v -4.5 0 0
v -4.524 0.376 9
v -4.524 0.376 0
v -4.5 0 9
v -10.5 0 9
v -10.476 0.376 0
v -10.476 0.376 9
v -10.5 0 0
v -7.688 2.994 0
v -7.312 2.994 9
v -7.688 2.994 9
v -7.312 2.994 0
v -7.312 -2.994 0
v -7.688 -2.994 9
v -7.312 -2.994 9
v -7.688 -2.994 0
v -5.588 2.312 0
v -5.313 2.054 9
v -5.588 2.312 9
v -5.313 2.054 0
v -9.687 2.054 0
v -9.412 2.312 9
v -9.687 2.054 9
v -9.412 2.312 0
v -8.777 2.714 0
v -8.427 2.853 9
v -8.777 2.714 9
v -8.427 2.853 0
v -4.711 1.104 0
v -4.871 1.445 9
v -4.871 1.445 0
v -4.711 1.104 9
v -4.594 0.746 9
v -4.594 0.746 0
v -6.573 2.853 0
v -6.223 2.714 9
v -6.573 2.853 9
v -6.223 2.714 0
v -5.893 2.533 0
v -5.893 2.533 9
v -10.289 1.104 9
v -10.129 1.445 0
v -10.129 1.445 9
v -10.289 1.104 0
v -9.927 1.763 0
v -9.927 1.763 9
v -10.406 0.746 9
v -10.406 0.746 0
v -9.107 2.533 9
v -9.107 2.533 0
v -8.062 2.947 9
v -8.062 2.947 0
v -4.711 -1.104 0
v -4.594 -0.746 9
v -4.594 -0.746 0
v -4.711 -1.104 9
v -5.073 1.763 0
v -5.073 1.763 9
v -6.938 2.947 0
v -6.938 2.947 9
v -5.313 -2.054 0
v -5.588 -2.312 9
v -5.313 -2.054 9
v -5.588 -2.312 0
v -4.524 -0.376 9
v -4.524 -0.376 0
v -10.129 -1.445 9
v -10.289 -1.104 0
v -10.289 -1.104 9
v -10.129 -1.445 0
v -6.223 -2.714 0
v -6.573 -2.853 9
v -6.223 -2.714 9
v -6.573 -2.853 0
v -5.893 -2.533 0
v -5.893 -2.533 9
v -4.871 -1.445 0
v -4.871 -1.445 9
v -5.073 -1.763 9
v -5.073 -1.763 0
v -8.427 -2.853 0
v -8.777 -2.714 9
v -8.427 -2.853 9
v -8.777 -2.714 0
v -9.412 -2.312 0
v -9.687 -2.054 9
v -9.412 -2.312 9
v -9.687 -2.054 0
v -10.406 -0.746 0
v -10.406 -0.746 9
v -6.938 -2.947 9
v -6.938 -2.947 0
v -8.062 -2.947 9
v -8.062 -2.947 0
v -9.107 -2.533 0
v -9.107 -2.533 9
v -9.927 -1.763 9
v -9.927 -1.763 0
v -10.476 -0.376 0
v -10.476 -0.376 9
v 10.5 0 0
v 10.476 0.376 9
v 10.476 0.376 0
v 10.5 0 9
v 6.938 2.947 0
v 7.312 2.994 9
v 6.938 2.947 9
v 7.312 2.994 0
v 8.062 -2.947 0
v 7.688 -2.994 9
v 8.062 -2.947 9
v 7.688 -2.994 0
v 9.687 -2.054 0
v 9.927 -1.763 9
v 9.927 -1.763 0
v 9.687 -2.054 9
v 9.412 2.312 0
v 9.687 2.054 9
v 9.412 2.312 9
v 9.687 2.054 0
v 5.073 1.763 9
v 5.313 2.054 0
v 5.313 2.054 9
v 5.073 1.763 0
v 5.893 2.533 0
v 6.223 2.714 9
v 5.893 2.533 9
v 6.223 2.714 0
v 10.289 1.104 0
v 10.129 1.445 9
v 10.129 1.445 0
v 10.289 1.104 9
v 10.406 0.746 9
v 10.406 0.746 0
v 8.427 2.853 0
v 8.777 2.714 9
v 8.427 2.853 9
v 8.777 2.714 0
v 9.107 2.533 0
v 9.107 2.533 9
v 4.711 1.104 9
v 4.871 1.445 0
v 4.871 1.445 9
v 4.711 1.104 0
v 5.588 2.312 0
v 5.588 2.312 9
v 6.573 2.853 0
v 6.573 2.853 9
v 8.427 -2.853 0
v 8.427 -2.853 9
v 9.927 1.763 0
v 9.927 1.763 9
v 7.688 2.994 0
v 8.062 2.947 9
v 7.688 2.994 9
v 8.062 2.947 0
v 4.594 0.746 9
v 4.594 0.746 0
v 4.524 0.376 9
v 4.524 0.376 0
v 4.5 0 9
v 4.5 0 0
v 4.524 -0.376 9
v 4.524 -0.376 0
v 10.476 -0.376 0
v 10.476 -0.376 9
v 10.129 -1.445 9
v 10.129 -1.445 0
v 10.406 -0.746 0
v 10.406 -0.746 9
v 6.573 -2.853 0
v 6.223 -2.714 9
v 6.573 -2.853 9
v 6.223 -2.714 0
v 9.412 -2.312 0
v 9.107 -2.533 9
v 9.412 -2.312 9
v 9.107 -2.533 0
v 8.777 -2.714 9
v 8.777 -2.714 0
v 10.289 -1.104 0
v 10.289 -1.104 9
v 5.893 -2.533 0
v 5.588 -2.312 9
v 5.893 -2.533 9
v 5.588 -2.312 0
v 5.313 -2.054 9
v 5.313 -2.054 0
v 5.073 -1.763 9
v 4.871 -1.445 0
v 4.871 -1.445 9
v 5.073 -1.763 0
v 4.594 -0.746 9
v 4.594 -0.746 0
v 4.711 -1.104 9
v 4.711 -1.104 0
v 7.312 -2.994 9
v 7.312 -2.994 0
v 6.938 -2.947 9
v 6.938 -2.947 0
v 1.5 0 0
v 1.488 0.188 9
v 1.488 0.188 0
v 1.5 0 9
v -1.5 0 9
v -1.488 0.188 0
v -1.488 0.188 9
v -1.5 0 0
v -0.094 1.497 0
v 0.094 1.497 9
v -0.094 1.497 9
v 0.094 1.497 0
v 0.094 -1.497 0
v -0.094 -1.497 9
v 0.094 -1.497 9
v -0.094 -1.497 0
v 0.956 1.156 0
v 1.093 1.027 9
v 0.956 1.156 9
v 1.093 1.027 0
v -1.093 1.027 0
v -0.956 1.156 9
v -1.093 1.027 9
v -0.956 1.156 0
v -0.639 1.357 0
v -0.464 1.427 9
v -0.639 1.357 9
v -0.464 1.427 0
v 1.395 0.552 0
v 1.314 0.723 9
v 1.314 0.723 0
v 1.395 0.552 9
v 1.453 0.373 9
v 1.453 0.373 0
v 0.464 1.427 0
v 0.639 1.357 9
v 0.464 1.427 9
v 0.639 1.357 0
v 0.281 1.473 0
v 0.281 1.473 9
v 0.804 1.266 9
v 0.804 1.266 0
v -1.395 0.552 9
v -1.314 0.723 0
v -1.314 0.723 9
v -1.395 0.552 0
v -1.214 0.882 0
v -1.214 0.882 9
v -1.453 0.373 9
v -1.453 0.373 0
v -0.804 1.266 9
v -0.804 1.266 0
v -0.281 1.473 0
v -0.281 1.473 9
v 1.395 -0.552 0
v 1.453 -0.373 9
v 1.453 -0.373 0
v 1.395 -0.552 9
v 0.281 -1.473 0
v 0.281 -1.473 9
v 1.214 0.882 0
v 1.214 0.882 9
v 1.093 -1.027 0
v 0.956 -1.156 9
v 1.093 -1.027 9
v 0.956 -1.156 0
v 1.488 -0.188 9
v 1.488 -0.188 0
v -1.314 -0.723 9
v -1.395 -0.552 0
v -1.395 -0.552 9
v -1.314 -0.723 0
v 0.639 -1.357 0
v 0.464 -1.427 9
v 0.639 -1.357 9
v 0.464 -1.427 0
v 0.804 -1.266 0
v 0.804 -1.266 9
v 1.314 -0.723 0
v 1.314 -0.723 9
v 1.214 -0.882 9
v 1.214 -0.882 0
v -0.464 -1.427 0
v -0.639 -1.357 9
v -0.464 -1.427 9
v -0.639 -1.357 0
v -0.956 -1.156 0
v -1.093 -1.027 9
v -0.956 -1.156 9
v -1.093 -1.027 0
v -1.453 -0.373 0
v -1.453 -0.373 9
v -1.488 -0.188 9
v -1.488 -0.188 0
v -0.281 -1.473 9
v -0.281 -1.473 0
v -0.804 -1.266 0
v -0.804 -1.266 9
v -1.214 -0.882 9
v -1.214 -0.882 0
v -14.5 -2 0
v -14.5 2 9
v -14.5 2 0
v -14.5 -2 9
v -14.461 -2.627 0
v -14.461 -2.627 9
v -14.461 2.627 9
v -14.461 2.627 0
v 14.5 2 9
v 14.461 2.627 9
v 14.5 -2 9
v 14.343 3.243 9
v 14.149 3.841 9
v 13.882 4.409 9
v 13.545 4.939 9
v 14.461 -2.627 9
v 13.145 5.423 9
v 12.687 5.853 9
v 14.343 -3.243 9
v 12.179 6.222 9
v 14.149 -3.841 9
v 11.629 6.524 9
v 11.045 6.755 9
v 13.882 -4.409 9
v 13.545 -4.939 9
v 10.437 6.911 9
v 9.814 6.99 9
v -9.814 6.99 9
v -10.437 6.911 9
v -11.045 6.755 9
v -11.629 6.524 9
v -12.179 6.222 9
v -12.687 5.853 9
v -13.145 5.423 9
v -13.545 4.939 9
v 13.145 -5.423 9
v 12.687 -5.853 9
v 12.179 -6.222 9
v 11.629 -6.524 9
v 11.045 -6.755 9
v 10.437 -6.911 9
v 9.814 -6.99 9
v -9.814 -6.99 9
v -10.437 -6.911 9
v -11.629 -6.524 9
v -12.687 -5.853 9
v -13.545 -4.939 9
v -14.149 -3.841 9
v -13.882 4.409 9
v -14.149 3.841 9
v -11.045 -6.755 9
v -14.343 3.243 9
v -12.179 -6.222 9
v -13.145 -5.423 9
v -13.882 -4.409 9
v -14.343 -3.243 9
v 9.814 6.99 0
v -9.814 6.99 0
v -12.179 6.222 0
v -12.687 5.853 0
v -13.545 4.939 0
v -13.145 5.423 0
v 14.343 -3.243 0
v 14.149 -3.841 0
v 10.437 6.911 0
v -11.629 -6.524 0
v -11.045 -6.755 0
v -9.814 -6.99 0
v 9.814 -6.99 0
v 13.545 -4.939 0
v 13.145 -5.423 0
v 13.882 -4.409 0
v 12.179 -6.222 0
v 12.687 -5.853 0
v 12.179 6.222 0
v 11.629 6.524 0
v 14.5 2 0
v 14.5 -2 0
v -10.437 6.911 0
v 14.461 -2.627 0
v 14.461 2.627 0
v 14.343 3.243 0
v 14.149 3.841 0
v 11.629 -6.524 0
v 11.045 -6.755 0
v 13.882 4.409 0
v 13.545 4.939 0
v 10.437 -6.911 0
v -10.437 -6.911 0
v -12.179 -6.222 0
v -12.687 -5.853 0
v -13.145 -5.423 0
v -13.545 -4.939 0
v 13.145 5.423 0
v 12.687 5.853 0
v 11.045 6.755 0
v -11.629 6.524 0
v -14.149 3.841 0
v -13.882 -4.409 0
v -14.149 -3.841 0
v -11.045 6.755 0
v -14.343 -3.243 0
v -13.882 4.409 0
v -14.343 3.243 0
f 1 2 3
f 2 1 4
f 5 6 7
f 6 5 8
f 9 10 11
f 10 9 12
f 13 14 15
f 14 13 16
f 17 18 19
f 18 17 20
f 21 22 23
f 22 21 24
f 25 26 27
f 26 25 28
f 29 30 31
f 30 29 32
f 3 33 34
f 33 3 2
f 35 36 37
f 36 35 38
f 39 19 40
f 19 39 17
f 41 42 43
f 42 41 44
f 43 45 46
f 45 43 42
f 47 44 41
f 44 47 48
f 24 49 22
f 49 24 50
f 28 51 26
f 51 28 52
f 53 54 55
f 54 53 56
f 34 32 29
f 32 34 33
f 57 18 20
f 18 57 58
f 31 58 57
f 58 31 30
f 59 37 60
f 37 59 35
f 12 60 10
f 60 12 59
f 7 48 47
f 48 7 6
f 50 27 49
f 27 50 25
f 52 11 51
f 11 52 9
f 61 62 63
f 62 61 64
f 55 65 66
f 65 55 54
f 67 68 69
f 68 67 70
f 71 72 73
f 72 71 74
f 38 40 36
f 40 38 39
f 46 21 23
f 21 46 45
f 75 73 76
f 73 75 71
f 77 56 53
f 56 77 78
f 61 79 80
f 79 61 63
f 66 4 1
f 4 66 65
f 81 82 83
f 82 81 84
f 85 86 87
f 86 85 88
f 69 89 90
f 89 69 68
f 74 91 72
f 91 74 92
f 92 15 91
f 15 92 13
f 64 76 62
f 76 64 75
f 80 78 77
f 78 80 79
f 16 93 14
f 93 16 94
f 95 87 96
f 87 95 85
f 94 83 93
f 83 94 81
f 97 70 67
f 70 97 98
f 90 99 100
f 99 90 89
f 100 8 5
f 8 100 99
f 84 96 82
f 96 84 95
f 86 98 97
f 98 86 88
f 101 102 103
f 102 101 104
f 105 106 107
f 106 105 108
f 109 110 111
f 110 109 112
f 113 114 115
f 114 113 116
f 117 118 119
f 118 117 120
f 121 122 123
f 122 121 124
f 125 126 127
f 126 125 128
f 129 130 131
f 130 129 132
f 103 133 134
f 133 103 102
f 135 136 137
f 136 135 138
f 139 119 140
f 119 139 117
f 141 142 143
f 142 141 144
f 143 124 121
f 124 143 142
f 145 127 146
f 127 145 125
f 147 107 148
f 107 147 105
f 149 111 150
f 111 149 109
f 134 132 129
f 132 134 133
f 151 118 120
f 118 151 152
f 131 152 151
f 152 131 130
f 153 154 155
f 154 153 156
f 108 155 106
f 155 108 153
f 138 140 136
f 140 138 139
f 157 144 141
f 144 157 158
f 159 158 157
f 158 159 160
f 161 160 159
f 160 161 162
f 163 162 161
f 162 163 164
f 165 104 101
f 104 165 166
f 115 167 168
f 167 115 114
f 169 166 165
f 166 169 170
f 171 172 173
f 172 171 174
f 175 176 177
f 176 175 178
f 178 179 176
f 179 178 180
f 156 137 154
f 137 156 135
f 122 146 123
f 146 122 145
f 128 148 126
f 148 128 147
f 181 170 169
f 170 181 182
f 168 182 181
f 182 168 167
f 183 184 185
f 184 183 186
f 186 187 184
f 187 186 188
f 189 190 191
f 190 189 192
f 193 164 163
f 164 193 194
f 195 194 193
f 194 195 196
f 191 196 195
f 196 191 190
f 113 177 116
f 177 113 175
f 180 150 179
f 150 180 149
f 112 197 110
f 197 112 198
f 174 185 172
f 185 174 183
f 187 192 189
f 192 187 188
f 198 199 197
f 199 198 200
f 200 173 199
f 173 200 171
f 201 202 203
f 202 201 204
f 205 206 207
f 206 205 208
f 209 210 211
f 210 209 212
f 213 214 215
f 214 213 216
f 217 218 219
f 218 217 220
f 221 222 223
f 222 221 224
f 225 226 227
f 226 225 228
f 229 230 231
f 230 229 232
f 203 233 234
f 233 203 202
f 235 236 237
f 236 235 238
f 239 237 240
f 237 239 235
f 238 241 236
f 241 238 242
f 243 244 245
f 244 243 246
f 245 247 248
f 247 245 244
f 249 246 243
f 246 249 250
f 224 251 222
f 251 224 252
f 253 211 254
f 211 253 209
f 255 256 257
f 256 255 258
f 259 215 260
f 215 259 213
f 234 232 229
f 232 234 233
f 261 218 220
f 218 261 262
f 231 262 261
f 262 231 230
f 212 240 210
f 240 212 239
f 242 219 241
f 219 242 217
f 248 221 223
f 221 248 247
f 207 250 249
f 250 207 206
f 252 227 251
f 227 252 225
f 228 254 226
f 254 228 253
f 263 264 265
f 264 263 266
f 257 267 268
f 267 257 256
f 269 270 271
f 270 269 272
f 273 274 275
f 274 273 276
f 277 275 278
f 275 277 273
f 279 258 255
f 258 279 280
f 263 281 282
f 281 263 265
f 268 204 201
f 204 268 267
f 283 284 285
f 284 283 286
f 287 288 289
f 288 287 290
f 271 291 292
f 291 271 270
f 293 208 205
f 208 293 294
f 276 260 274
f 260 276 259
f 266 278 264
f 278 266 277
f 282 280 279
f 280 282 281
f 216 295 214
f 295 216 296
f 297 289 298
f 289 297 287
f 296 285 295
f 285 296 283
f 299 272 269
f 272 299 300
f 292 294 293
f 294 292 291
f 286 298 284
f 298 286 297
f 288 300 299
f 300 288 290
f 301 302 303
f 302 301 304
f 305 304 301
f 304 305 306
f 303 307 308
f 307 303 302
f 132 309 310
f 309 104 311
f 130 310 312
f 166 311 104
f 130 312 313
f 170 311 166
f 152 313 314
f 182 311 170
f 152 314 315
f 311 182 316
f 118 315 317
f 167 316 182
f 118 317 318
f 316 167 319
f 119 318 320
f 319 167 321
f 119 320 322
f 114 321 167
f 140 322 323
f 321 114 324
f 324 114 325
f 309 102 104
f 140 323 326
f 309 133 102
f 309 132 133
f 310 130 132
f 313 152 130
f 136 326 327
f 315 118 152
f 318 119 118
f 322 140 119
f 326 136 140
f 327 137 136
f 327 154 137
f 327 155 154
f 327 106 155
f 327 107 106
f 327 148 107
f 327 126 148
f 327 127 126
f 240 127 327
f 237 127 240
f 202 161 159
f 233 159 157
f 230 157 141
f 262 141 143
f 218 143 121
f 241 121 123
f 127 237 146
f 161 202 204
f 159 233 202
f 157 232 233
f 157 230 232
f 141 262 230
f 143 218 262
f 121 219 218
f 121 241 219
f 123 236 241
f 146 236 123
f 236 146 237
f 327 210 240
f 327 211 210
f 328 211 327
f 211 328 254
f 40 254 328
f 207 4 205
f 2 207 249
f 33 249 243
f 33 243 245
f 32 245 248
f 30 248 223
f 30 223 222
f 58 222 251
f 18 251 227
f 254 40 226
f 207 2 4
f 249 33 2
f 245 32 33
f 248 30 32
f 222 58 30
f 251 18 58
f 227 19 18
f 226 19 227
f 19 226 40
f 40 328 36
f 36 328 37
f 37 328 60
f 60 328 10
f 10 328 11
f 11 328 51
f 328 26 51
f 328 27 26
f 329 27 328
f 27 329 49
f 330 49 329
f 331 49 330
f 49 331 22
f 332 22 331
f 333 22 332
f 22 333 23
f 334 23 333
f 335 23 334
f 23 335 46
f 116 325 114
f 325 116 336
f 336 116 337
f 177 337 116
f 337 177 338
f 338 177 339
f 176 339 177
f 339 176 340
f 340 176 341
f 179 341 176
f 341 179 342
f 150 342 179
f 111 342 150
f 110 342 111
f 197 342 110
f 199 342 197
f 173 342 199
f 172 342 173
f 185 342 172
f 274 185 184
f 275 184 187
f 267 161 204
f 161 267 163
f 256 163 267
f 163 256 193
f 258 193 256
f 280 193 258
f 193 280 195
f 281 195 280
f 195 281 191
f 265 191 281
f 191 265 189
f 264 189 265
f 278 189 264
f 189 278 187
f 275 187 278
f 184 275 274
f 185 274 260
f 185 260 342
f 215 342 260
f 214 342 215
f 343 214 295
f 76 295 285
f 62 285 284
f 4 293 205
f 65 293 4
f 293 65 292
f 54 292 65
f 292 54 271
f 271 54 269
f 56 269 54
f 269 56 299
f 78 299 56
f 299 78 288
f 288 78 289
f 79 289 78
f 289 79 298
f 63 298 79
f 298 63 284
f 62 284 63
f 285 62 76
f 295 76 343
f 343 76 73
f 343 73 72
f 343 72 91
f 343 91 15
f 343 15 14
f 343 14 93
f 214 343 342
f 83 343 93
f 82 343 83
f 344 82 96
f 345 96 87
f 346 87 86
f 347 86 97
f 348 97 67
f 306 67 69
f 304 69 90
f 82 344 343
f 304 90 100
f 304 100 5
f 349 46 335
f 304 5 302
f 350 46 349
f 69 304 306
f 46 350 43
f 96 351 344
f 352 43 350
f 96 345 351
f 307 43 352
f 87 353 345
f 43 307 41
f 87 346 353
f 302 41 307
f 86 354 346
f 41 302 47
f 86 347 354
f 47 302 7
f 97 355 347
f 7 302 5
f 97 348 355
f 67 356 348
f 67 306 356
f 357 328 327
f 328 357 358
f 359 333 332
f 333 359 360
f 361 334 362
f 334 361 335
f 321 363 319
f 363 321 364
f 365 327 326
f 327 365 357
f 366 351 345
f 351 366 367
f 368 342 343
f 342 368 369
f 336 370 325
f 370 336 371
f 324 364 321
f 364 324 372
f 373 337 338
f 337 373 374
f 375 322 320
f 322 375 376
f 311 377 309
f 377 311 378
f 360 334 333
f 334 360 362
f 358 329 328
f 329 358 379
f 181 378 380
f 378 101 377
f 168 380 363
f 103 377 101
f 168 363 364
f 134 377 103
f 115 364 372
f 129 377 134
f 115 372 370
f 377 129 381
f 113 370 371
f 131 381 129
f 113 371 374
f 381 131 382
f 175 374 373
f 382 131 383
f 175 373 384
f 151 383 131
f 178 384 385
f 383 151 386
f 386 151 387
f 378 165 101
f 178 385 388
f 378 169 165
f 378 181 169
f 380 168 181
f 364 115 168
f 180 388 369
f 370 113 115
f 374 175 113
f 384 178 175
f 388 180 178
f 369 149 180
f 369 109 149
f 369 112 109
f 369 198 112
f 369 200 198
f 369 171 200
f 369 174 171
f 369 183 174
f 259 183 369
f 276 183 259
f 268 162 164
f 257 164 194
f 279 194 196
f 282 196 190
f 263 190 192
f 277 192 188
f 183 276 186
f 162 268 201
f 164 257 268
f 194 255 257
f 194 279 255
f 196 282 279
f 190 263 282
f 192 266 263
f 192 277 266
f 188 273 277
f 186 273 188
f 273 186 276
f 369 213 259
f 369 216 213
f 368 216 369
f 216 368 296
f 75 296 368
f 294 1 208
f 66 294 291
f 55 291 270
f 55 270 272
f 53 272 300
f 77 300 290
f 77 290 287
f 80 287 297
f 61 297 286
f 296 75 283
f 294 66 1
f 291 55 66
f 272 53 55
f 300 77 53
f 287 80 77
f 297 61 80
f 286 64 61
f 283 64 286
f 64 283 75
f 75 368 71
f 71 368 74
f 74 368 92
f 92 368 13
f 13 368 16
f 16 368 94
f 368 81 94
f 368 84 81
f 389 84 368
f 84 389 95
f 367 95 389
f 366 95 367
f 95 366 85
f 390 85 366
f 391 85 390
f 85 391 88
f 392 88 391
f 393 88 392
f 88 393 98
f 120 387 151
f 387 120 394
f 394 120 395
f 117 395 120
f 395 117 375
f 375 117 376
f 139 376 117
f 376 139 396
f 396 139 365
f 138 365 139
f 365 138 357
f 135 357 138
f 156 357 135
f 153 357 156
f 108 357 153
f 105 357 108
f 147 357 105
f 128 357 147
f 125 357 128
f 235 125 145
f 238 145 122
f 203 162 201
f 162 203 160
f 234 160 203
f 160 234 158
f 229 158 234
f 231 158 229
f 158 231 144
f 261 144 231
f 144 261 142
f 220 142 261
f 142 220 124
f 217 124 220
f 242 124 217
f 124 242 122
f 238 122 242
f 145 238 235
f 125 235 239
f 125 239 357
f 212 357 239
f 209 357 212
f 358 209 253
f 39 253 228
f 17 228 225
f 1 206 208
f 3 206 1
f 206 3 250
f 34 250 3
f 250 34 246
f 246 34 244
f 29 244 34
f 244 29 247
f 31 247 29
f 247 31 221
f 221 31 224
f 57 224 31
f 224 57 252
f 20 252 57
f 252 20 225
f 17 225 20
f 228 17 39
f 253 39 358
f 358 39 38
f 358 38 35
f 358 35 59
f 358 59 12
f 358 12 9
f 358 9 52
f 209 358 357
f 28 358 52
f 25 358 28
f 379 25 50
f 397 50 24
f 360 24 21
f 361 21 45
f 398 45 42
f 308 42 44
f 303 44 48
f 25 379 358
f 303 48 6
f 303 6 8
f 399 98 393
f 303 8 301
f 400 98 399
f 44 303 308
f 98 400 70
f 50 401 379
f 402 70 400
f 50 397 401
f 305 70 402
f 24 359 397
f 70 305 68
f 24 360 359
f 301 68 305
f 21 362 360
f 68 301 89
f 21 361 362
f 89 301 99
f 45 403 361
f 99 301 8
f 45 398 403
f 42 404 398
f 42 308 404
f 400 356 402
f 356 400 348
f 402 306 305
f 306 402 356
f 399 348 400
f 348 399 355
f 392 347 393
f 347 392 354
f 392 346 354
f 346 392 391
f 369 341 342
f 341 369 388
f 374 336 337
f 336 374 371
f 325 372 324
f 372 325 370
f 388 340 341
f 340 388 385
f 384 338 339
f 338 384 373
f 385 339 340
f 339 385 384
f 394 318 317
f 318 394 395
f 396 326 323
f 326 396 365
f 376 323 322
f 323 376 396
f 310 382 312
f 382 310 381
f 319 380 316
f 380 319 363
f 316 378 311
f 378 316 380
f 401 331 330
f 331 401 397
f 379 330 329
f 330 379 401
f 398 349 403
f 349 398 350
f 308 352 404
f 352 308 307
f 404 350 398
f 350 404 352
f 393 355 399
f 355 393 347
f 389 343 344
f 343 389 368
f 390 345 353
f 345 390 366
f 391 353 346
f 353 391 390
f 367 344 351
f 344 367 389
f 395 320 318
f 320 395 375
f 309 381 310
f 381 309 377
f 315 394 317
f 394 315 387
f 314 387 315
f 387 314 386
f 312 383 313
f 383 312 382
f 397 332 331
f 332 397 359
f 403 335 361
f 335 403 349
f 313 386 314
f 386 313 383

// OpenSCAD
$fn = 50;


difference() {
	union() {
		translate(v = [0, 0, 0]) {
			rotate(a = [0, 0, 0]) {
				hull() {
					translate(v = [-9.5000000000, 2.0000000000, 0]) {
						rotate(a = [0, 0, 0]) {
							translate(v = [0, 0, 0]) {
								rotate(a = [0, 0, 0]) {
									cylinder(h = 9, r = 5);
								}
							}
						}
					}
					translate(v = [9.5000000000, 2.0000000000, 0]) {
						rotate(a = [0, 0, 0]) {
							translate(v = [0, 0, 0]) {
								rotate(a = [0, 0, 0]) {
									cylinder(h = 9, r = 5);
								}
							}
						}
					}
					translate(v = [-9.5000000000, -2.0000000000, 0]) {
						rotate(a = [0, 0, 0]) {
							translate(v = [0, 0, 0]) {
								rotate(a = [0, 0, 0]) {
									cylinder(h = 9, r = 5);
								}
							}
						}
					}
					translate(v = [9.5000000000, -2.0000000000, 0]) {
						rotate(a = [0, 0, 0]) {
							translate(v = [0, 0, 0]) {
								rotate(a = [0, 0, 0]) {
									cylinder(h = 9, r = 5);
								}
							}
						}
					}
				}
			}
		}
	}
	union() {
		translate(v = [-7.5000000000, 0.0000000000, 0]) {
			rotate(a = [0, 0, 0]) {
				translate(v = [0, 0, -50]) {
					rotate(a = [0, 0, 0]) {
						cylinder(h = 100, r = 3.0000000000);
					}
				}
			}
		}
		translate(v = [7.5000000000, 0.0000000000, 0]) {
			rotate(a = [0, 0, 0]) {
				translate(v = [0, 0, -50]) {
					rotate(a = [0, 0, 0]) {
						cylinder(h = 100, r = 3.0000000000);
					}
				}
			}
		}
		translate(v = [-7.5000000000, 0.0000000000, 0]) {
			rotate(a = [0, 0, 0]) {
				translate(v = [0, 0, -50]) {
					rotate(a = [0, 0, 0]) {
						cylinder(h = 100, r = 1.5000000000);
					}
				}
			}
		}
		translate(v = [0.0000000000, 0.0000000000, 0]) {
			rotate(a = [0, 0, 0]) {
				translate(v = [0, 0, -50]) {
					rotate(a = [0, 0, 0]) {
						cylinder(h = 100, r = 1.5000000000);
					}
				}
			}
		}
		translate(v = [7.5000000000, 0.0000000000, 0]) {
			rotate(a = [0, 0, 0]) {
				translate(v = [0, 0, -50]) {
					rotate(a = [0, 0, 0]) {
						cylinder(h = 100, r = 1.5000000000);
					}
				}
			}
		}
	}
}
